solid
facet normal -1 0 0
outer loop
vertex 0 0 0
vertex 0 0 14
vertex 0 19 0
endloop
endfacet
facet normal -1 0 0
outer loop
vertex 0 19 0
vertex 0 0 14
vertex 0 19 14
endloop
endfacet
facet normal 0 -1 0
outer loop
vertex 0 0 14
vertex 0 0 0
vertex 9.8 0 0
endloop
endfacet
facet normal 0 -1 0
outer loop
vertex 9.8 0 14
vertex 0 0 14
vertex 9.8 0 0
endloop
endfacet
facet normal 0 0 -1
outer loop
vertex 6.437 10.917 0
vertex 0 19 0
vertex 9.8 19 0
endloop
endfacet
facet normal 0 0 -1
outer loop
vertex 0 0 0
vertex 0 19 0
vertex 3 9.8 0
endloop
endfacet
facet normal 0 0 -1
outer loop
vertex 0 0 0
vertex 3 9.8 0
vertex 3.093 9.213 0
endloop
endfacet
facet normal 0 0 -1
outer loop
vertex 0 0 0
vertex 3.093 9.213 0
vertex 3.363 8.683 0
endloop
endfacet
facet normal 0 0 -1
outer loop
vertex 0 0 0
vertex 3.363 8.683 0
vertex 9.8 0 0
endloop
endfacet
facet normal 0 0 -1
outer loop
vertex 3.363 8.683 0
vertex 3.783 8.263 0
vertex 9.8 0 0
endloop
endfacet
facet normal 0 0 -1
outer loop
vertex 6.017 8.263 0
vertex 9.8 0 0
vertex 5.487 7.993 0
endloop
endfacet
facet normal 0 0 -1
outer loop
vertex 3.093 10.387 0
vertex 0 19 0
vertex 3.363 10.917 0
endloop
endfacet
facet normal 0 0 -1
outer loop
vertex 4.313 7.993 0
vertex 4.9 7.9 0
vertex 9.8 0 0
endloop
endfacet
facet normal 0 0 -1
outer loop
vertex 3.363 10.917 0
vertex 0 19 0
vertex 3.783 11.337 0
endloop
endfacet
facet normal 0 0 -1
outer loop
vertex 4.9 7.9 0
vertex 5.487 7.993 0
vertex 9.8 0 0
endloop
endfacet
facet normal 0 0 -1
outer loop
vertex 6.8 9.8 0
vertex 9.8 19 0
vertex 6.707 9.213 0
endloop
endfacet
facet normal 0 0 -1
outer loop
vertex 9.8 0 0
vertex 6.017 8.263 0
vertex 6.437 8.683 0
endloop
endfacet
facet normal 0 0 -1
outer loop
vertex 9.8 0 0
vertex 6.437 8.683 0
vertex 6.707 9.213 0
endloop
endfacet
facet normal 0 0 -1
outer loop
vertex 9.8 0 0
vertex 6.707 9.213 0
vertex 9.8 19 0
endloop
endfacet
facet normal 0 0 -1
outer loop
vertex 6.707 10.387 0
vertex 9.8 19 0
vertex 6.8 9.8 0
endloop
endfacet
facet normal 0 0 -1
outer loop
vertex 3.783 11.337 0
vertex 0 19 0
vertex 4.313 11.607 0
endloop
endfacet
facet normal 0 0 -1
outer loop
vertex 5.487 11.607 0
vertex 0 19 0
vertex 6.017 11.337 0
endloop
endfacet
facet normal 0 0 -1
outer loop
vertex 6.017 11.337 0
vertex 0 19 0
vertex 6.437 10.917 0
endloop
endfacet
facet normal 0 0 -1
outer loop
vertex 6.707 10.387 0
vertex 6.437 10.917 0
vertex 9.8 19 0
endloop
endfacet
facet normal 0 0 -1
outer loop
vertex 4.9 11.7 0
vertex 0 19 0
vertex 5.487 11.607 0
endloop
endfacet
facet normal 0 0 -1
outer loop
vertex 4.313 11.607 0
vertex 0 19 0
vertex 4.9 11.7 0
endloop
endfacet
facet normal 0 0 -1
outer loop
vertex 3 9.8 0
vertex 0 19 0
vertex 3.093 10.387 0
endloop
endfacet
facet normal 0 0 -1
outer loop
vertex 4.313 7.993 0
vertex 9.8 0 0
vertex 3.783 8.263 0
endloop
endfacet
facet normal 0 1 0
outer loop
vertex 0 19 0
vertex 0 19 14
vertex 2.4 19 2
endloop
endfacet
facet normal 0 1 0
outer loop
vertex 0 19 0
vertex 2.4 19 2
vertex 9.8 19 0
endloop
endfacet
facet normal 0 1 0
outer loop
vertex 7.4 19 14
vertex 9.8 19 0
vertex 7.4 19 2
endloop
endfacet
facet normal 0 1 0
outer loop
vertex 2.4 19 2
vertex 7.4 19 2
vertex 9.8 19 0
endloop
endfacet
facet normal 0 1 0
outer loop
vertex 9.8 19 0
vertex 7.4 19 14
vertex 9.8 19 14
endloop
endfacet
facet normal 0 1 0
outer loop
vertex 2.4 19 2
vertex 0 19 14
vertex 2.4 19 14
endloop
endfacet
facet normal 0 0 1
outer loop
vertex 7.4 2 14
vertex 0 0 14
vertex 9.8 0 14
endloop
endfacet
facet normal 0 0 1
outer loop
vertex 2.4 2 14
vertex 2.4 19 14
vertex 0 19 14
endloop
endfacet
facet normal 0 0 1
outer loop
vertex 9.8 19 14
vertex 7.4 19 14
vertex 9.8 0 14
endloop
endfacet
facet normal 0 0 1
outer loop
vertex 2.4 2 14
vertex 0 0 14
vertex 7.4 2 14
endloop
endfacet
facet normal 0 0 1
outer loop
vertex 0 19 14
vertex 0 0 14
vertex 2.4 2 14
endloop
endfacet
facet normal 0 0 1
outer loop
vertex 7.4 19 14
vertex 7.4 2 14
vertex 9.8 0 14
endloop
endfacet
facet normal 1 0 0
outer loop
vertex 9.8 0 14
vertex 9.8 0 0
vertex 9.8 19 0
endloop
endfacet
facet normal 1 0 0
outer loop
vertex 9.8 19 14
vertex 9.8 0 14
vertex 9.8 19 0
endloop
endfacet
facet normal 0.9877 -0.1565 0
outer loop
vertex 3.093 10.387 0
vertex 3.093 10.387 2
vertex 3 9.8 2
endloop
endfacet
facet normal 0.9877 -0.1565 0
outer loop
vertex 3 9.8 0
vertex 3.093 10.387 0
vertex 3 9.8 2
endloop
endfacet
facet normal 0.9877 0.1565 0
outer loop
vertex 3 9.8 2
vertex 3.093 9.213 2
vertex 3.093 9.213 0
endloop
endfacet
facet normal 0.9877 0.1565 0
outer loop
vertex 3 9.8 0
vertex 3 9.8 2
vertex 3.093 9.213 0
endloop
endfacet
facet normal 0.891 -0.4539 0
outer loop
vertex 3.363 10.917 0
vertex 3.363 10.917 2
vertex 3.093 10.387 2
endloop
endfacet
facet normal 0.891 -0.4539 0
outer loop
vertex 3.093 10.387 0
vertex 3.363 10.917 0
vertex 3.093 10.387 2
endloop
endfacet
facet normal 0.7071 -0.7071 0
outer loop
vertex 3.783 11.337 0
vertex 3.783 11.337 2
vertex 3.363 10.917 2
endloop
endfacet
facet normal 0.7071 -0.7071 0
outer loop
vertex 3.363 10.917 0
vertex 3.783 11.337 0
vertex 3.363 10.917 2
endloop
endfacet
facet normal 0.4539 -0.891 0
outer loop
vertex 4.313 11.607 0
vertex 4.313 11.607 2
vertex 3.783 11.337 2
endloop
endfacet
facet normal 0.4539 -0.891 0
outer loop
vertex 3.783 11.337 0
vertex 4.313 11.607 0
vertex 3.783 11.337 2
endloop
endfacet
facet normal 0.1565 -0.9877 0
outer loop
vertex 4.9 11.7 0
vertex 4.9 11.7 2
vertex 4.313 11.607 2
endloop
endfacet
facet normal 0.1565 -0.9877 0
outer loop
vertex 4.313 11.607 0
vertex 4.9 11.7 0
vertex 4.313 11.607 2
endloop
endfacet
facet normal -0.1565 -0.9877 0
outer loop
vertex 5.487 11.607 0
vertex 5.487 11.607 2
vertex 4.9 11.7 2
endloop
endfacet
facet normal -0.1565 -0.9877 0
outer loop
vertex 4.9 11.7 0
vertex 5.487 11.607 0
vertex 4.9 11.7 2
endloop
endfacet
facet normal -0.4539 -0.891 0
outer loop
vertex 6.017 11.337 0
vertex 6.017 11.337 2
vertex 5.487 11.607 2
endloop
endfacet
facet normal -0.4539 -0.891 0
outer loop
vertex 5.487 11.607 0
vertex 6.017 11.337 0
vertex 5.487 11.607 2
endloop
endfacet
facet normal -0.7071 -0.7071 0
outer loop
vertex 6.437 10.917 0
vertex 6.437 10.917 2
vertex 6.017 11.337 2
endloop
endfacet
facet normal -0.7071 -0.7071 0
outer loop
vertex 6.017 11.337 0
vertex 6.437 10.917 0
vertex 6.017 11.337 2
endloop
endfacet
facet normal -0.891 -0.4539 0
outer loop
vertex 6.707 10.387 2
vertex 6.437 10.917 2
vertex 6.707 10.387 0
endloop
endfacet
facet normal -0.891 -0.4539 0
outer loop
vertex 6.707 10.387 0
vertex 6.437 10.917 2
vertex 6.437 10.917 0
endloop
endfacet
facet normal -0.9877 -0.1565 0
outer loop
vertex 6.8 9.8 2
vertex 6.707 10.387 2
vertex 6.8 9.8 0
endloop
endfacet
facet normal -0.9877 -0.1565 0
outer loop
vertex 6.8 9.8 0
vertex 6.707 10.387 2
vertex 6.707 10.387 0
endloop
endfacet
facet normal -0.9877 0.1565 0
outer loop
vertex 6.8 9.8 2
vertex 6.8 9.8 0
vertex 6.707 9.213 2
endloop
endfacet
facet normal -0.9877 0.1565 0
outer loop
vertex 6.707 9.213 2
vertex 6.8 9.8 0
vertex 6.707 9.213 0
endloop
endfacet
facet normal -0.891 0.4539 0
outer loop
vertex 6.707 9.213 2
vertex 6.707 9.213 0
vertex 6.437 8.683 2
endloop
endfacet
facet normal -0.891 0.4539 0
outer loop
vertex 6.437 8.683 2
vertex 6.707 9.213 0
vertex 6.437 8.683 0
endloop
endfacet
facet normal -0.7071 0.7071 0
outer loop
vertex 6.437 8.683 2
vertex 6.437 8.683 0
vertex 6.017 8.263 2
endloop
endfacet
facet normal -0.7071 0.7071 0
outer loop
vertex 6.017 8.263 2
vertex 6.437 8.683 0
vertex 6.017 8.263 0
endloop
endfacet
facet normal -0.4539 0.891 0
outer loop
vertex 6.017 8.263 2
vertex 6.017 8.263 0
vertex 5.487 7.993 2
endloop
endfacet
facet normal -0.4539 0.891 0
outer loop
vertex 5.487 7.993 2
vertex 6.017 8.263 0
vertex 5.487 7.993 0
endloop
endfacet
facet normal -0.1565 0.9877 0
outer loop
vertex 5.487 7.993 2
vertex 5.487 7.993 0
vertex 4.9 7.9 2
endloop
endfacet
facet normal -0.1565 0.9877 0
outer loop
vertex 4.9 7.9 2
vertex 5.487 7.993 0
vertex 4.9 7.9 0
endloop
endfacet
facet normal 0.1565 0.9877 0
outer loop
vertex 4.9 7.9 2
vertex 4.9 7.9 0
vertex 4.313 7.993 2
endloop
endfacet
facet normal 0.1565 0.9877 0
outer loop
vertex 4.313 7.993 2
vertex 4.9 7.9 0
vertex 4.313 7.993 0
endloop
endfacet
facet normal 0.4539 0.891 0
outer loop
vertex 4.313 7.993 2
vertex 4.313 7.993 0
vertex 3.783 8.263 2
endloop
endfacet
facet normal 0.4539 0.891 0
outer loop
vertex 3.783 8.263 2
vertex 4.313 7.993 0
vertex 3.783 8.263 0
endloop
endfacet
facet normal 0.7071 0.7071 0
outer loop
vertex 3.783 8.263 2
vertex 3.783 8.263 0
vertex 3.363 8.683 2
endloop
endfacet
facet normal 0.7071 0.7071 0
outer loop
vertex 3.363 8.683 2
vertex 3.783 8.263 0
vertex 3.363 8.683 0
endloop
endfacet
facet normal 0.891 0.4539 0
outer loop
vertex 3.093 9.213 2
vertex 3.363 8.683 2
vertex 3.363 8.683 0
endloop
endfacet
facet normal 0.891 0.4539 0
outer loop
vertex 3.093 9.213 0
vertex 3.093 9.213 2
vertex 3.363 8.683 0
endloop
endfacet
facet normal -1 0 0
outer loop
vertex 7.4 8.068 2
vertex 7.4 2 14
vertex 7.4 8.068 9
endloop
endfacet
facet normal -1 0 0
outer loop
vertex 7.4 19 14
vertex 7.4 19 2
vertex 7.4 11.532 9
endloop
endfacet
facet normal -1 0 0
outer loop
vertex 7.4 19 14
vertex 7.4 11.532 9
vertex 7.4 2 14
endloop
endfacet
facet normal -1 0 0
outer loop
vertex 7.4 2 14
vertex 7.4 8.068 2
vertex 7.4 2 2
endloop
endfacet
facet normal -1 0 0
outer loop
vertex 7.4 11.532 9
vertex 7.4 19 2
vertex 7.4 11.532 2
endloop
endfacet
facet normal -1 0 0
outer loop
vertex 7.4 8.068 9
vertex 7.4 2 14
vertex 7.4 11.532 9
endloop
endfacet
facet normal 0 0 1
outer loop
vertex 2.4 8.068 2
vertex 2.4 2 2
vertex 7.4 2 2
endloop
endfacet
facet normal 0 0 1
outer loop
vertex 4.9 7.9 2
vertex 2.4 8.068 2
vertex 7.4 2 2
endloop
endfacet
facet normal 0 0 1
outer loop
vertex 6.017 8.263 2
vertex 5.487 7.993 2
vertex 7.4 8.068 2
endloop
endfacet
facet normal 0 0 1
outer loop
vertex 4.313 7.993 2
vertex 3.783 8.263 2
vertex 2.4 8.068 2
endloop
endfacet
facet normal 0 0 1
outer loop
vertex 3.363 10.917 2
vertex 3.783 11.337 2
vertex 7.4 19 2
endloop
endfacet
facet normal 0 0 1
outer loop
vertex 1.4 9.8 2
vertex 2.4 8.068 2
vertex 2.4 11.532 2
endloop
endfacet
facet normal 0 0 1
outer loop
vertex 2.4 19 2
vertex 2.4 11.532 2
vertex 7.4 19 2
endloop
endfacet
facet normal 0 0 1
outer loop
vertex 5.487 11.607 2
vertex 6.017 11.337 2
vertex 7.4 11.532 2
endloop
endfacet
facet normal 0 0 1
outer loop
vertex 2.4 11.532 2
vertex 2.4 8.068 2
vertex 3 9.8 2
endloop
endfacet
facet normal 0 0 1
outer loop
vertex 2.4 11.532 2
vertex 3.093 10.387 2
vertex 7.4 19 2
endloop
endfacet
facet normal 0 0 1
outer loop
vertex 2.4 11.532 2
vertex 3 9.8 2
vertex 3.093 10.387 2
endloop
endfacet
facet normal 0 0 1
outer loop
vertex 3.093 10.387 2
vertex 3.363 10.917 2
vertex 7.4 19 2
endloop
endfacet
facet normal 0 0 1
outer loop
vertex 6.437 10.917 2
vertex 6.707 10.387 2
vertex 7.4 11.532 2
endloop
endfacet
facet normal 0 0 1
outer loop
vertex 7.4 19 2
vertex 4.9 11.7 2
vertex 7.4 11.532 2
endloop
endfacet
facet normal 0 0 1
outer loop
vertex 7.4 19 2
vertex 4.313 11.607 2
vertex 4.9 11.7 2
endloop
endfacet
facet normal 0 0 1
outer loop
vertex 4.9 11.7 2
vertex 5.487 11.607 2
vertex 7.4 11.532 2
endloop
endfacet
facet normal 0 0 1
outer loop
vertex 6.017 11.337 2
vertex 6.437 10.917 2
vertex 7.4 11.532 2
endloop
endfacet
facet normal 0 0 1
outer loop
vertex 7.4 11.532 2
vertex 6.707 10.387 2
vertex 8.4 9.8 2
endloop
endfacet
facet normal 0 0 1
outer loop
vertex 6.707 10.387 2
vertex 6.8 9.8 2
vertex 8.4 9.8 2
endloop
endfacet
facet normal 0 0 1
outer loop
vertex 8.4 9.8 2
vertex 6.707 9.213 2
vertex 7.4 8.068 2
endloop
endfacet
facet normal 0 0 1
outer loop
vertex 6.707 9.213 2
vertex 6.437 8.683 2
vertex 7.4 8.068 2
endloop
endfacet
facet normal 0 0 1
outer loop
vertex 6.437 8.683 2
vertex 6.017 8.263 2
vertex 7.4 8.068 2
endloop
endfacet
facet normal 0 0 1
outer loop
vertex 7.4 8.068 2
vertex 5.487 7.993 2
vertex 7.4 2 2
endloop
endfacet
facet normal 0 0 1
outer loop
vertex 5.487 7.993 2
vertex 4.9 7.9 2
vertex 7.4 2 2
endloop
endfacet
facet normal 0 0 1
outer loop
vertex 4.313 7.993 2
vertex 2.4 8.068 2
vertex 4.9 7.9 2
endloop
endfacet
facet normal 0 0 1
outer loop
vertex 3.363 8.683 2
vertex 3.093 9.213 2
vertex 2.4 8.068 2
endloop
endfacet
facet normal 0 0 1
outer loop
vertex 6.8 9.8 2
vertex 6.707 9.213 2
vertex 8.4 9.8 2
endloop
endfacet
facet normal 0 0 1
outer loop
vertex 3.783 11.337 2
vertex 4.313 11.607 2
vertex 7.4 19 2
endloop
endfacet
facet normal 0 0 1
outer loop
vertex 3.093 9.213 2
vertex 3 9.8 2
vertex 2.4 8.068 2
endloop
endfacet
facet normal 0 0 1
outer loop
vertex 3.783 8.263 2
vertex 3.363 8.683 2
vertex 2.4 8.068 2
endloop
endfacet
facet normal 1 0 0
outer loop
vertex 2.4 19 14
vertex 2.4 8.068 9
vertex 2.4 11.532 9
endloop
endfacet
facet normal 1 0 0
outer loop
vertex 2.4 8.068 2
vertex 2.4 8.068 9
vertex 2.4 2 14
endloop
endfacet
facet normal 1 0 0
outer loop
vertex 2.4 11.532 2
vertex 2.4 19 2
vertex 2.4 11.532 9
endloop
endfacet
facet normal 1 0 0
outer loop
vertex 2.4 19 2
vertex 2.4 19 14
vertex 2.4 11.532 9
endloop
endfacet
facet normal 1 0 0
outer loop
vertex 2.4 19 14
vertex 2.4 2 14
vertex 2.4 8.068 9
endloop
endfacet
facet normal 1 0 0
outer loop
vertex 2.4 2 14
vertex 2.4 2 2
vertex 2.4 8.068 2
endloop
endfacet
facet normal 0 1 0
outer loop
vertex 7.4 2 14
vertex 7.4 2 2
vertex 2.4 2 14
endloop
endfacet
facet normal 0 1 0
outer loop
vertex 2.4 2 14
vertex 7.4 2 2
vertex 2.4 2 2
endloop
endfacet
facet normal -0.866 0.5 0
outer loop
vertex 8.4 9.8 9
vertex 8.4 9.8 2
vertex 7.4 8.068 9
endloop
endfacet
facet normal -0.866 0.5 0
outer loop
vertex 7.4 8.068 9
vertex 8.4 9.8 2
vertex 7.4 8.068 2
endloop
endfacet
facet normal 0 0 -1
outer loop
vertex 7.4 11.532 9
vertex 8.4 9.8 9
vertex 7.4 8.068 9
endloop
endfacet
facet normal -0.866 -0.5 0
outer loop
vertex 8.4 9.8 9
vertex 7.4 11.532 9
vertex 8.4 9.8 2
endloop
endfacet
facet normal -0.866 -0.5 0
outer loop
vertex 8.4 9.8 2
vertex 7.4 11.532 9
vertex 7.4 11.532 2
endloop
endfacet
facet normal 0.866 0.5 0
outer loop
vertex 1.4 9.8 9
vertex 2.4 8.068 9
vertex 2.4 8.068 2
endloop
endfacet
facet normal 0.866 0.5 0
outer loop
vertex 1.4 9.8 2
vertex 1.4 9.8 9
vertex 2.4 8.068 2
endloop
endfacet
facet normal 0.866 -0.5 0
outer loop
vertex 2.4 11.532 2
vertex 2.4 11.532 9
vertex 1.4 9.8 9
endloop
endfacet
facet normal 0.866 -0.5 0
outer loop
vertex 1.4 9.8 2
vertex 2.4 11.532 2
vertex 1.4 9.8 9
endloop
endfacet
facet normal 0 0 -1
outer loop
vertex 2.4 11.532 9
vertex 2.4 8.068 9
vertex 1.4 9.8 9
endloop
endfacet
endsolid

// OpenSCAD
difference() {

cube([9.8,19,14]);

translate([2.4,2,2]) cube([5,19,14]);

//translate([0,0,8]) cube([8.8,2,14]);

translate([4.9,9.8,0]) cylinder(r=1.9, h=15, $fn=20);

translate([4.9,9.8,2]) cylinder(r=3.5, h=7, $fn=6);

}
